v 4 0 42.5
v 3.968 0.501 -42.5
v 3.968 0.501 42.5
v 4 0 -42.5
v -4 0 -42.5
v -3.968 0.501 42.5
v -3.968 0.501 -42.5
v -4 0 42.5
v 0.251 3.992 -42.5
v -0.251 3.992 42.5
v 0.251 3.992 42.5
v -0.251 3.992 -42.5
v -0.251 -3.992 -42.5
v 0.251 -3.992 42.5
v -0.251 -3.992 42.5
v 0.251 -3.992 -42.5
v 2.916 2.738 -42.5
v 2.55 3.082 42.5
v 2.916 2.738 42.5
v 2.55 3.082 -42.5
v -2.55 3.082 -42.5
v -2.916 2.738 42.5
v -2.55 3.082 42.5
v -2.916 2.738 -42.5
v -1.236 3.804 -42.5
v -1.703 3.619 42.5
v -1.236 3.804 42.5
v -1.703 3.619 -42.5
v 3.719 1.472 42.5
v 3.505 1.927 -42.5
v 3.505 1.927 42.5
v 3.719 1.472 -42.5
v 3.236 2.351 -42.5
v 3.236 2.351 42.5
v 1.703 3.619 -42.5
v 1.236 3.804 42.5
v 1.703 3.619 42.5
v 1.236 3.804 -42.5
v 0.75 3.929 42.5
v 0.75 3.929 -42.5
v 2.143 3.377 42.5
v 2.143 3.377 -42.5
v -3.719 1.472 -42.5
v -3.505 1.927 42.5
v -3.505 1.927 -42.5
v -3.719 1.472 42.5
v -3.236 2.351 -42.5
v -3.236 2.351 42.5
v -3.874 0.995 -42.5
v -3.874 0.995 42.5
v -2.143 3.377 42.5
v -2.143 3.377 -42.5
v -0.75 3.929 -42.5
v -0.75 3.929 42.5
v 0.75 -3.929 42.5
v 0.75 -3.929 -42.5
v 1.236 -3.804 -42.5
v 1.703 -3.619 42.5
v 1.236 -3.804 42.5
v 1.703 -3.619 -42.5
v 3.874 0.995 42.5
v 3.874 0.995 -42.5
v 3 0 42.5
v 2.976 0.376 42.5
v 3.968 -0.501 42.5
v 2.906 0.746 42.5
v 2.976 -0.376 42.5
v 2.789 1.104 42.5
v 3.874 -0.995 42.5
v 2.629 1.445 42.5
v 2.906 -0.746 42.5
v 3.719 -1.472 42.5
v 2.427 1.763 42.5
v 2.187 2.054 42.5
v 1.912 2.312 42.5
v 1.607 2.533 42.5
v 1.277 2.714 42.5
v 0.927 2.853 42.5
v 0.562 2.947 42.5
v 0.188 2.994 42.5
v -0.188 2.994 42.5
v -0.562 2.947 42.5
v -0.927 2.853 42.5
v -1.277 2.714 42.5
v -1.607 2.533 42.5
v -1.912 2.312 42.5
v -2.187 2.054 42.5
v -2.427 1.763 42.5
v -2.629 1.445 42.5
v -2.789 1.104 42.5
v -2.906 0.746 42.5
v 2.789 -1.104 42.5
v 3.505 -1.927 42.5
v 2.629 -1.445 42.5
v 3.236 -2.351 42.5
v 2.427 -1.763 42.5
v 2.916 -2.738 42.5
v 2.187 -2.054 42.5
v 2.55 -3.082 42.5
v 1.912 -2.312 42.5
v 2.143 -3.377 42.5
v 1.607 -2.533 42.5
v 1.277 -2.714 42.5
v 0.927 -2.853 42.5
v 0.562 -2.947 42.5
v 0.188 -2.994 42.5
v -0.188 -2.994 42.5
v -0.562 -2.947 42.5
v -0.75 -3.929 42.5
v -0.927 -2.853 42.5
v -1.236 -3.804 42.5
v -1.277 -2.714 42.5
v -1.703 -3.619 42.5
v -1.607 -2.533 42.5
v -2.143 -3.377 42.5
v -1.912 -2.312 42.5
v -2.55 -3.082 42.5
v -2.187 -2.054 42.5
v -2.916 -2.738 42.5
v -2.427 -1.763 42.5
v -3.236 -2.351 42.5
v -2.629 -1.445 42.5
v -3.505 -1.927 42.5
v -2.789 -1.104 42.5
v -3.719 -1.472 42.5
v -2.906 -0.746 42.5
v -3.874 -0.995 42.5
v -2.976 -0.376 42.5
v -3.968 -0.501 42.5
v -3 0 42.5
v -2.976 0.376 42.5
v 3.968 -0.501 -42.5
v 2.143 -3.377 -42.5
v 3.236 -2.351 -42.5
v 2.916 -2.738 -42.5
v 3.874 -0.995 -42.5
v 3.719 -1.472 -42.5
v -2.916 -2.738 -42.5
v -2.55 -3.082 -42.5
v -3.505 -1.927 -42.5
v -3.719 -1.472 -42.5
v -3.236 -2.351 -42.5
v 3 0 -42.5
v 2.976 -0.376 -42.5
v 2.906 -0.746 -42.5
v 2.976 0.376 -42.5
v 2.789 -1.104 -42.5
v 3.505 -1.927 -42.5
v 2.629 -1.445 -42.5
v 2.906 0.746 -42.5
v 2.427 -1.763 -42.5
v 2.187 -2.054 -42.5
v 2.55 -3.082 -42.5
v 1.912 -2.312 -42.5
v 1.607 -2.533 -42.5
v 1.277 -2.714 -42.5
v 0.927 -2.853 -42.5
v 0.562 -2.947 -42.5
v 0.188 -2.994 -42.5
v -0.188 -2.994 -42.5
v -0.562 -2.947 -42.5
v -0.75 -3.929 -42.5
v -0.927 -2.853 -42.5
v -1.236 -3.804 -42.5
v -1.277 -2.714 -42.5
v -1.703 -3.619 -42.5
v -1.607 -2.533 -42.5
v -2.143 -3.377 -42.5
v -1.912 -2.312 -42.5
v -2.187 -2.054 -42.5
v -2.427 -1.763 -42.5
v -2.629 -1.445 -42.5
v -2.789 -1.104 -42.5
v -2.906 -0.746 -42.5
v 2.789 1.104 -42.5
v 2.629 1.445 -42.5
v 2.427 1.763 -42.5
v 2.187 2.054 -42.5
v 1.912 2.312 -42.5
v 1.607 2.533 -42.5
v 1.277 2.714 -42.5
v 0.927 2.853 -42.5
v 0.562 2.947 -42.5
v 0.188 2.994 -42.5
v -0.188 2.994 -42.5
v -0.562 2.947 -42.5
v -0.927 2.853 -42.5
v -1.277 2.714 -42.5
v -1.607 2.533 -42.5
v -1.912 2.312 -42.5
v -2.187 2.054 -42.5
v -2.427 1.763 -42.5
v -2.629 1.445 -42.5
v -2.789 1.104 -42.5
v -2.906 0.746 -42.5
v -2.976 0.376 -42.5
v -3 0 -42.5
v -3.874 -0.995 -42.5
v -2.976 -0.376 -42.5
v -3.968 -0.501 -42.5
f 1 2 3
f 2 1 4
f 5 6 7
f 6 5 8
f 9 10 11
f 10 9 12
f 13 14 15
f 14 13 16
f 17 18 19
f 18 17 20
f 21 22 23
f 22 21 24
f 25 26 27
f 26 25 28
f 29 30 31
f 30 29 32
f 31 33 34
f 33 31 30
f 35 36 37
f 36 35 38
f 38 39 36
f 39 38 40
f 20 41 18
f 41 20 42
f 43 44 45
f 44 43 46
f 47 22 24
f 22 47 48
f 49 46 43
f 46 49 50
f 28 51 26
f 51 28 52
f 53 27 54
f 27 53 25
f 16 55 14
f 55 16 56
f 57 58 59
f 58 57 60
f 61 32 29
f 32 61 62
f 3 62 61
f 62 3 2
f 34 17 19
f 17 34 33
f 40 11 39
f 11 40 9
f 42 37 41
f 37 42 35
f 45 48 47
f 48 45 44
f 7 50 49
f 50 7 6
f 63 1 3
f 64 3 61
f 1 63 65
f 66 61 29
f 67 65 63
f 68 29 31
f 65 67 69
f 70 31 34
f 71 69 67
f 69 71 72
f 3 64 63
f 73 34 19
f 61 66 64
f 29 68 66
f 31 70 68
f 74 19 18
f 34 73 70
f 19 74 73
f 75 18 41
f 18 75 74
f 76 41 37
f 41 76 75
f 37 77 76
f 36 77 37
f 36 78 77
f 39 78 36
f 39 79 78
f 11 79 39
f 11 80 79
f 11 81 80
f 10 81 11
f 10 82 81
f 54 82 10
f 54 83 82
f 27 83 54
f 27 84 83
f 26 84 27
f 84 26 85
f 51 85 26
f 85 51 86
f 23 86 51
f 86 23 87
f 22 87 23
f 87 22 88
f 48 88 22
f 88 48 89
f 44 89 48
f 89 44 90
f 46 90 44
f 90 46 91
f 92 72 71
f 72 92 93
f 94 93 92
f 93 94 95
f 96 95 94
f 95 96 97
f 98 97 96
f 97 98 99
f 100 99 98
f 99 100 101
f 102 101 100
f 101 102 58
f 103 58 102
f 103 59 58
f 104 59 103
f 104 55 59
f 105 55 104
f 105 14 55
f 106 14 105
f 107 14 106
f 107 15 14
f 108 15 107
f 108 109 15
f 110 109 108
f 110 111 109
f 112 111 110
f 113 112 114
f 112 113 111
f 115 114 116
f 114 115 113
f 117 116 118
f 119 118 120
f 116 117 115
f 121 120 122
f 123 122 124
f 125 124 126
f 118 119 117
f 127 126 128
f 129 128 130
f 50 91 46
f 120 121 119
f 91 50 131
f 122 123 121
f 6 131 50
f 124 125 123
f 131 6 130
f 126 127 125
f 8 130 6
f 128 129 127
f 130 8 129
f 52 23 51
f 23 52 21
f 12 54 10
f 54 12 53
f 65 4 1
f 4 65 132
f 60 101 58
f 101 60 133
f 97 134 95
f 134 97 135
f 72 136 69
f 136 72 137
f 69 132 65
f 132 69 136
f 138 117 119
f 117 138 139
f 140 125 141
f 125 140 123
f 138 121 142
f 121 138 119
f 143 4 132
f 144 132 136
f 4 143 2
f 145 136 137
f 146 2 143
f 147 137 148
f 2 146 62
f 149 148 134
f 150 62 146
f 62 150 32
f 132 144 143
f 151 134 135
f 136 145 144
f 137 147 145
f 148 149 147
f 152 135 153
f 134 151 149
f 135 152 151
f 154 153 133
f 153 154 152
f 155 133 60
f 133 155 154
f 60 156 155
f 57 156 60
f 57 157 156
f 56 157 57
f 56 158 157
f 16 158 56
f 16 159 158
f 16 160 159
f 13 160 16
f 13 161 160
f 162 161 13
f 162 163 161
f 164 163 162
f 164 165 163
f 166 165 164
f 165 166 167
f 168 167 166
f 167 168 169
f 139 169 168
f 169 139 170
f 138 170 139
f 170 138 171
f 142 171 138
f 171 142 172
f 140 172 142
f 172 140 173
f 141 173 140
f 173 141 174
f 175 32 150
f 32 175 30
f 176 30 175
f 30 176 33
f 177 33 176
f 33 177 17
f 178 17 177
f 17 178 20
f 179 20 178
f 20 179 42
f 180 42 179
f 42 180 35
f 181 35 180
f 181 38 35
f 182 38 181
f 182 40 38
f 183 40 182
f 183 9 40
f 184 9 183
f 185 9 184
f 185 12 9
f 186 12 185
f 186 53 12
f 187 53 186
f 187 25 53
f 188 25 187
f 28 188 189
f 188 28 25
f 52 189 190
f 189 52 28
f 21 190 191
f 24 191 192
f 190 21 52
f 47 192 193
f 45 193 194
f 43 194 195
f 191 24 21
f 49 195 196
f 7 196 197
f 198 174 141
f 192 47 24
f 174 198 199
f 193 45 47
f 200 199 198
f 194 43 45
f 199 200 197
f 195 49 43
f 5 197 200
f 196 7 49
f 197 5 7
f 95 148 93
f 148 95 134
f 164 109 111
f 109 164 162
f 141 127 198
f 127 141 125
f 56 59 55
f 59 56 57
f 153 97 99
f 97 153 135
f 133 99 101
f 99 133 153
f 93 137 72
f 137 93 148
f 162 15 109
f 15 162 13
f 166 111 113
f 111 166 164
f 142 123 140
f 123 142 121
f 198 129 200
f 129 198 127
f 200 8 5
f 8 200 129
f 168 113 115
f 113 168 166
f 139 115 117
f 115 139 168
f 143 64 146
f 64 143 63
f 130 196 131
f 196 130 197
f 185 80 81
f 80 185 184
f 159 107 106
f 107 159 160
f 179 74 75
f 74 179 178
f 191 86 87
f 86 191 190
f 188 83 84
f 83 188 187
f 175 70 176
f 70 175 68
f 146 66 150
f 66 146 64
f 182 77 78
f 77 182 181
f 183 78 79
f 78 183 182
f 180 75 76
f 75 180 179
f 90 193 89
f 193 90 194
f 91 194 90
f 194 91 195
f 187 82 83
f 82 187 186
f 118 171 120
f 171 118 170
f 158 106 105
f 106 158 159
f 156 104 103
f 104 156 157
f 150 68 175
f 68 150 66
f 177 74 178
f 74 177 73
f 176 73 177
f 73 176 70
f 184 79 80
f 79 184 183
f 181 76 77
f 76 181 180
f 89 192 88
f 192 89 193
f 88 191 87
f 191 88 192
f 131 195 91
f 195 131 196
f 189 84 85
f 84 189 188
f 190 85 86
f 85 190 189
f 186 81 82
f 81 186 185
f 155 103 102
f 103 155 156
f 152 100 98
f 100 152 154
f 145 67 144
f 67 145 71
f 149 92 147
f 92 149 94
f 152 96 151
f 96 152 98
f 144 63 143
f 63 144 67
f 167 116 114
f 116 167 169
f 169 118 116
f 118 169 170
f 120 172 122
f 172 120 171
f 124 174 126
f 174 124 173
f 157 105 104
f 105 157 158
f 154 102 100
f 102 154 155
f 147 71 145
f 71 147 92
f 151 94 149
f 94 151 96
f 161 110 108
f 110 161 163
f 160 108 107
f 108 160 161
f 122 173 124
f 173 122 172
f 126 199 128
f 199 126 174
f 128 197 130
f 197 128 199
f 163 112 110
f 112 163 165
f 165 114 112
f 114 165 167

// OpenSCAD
$fn = 50;


difference() {
	union() {
		translate(v = [0, 0, -42.5000000000]) {
			cylinder(h = 85, r = 4.0000000000);
		}
	}
	union() {
		translate(v = [0, 0, -100.0000000000]) {
			cylinder(h = 200, r = 3);
		}
	}
}
